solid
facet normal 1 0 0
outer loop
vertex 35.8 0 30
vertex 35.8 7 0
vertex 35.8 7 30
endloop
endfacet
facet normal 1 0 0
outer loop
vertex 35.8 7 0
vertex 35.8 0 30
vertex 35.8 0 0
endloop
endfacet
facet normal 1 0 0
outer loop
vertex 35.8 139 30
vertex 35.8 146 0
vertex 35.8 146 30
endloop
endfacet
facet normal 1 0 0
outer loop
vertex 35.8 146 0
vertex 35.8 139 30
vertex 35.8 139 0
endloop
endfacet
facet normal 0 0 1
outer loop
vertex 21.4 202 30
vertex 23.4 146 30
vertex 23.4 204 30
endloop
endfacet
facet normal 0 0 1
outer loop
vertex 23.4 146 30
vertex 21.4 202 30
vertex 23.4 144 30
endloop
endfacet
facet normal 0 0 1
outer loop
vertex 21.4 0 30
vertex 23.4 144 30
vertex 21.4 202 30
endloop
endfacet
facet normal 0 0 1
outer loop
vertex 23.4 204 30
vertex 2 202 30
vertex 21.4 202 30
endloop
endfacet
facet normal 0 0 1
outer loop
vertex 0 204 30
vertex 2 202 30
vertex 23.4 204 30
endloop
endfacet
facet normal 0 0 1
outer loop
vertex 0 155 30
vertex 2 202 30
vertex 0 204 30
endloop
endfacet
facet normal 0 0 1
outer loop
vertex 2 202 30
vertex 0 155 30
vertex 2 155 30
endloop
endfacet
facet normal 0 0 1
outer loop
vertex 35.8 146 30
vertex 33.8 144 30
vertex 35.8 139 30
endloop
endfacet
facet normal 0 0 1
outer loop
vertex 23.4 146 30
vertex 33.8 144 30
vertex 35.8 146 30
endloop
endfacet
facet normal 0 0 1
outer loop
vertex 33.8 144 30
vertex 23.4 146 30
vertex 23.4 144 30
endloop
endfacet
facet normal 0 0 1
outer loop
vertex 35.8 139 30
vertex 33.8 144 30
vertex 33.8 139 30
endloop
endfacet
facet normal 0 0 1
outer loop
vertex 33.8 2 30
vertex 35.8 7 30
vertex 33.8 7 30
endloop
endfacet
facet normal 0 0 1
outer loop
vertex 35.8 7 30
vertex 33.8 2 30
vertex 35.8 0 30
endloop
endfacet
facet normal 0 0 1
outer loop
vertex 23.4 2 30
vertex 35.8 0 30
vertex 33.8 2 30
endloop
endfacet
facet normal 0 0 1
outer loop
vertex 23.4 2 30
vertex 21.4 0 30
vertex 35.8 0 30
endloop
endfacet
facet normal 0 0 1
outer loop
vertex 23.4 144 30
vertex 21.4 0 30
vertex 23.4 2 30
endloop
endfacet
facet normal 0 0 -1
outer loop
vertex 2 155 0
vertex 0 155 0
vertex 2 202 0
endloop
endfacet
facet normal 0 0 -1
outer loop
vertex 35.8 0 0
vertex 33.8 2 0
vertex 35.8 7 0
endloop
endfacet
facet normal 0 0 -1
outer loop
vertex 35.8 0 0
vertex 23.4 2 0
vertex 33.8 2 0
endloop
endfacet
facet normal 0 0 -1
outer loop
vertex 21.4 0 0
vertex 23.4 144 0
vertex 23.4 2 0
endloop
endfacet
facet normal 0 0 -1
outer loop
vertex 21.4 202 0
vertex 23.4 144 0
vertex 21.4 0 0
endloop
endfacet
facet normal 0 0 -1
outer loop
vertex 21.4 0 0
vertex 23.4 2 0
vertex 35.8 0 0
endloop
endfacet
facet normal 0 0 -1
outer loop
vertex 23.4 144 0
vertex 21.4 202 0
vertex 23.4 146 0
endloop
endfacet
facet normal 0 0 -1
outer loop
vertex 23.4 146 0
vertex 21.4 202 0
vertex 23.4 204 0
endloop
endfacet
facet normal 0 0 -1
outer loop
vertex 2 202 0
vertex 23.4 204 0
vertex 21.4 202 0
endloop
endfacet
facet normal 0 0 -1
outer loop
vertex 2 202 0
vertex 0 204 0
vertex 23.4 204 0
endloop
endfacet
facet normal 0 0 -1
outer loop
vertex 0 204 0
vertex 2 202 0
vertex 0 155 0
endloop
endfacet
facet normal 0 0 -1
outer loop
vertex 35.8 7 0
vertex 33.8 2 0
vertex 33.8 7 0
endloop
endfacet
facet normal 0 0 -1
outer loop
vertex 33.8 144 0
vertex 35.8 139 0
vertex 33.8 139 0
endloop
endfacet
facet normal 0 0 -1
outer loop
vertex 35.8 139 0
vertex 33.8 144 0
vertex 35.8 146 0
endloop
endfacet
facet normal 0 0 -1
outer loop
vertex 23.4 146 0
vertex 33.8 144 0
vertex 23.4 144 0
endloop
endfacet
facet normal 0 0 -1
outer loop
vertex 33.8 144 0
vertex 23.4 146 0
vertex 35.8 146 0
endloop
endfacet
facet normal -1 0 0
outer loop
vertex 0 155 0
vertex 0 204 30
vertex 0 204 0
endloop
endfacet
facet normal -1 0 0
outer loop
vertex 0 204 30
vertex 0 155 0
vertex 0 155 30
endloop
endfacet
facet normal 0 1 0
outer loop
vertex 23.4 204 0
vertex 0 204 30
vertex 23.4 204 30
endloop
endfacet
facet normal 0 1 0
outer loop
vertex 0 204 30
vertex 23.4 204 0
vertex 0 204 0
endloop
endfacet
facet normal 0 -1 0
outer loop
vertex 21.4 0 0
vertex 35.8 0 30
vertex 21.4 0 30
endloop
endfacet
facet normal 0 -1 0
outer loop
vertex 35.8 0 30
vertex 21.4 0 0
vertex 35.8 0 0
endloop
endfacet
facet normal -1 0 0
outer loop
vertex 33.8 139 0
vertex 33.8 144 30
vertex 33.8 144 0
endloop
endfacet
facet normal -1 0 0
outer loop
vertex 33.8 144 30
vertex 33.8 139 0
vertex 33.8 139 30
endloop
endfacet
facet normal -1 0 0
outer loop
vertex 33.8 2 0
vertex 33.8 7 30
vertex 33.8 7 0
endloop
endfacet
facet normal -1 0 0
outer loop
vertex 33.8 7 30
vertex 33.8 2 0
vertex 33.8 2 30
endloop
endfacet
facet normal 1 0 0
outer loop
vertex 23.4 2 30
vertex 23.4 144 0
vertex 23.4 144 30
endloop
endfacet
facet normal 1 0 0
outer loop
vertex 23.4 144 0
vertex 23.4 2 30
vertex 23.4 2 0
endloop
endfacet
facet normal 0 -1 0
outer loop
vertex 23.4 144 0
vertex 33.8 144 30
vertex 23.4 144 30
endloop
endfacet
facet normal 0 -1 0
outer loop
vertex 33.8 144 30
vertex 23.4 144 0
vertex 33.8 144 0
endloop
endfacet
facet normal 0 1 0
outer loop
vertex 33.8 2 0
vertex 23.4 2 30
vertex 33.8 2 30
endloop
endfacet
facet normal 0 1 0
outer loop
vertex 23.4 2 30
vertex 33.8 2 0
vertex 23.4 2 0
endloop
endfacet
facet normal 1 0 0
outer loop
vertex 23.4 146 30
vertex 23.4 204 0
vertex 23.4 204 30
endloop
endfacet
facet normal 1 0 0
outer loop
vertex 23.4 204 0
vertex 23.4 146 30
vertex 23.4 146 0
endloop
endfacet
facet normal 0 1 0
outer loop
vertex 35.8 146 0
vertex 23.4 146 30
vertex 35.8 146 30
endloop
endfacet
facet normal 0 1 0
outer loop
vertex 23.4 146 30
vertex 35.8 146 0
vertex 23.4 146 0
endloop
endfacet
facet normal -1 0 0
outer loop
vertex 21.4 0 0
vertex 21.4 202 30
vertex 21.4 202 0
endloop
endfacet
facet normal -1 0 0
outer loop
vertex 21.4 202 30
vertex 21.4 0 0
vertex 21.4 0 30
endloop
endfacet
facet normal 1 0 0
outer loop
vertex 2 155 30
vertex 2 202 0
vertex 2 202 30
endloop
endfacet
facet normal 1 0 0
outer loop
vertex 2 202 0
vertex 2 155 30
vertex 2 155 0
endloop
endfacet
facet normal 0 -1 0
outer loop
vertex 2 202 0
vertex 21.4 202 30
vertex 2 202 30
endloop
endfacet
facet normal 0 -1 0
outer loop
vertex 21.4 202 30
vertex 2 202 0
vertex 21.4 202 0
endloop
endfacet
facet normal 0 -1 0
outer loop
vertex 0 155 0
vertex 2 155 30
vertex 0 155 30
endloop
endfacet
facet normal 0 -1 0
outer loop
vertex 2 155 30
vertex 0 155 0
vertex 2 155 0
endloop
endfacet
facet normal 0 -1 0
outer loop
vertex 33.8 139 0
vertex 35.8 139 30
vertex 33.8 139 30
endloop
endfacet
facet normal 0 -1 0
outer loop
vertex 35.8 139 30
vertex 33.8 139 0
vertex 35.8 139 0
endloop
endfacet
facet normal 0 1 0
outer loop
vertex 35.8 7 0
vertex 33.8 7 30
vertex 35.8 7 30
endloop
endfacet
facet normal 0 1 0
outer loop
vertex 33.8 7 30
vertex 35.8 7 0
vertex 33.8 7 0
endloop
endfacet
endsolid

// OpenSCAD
// hauteur et epaisseur truc de morgan
m_h = 142;
m_e = 10.4;
// hauteur et epaisseur porte
p_h = 58;
p_e = 19.2+.2;

// epaiseur
e=2;

difference() {
	cube([e*3+m_e+p_e, m_h+p_h+e*2, 30]);
	translate([e*2+p_e,e,-5])
		cube([m_e,m_h,40]);
	translate([e*2+p_e,e*2+m_h,-5])
		cube([20,100,40]);
	translate([e,-5,-5])
		cube([p_e,m_h+p_h+e+5,40]);
	translate([-5,-5,-5])
		cube([10,160,40]);
	translate([30,e+5,-5])
		cube([10,m_h-5*2,40]);
}
